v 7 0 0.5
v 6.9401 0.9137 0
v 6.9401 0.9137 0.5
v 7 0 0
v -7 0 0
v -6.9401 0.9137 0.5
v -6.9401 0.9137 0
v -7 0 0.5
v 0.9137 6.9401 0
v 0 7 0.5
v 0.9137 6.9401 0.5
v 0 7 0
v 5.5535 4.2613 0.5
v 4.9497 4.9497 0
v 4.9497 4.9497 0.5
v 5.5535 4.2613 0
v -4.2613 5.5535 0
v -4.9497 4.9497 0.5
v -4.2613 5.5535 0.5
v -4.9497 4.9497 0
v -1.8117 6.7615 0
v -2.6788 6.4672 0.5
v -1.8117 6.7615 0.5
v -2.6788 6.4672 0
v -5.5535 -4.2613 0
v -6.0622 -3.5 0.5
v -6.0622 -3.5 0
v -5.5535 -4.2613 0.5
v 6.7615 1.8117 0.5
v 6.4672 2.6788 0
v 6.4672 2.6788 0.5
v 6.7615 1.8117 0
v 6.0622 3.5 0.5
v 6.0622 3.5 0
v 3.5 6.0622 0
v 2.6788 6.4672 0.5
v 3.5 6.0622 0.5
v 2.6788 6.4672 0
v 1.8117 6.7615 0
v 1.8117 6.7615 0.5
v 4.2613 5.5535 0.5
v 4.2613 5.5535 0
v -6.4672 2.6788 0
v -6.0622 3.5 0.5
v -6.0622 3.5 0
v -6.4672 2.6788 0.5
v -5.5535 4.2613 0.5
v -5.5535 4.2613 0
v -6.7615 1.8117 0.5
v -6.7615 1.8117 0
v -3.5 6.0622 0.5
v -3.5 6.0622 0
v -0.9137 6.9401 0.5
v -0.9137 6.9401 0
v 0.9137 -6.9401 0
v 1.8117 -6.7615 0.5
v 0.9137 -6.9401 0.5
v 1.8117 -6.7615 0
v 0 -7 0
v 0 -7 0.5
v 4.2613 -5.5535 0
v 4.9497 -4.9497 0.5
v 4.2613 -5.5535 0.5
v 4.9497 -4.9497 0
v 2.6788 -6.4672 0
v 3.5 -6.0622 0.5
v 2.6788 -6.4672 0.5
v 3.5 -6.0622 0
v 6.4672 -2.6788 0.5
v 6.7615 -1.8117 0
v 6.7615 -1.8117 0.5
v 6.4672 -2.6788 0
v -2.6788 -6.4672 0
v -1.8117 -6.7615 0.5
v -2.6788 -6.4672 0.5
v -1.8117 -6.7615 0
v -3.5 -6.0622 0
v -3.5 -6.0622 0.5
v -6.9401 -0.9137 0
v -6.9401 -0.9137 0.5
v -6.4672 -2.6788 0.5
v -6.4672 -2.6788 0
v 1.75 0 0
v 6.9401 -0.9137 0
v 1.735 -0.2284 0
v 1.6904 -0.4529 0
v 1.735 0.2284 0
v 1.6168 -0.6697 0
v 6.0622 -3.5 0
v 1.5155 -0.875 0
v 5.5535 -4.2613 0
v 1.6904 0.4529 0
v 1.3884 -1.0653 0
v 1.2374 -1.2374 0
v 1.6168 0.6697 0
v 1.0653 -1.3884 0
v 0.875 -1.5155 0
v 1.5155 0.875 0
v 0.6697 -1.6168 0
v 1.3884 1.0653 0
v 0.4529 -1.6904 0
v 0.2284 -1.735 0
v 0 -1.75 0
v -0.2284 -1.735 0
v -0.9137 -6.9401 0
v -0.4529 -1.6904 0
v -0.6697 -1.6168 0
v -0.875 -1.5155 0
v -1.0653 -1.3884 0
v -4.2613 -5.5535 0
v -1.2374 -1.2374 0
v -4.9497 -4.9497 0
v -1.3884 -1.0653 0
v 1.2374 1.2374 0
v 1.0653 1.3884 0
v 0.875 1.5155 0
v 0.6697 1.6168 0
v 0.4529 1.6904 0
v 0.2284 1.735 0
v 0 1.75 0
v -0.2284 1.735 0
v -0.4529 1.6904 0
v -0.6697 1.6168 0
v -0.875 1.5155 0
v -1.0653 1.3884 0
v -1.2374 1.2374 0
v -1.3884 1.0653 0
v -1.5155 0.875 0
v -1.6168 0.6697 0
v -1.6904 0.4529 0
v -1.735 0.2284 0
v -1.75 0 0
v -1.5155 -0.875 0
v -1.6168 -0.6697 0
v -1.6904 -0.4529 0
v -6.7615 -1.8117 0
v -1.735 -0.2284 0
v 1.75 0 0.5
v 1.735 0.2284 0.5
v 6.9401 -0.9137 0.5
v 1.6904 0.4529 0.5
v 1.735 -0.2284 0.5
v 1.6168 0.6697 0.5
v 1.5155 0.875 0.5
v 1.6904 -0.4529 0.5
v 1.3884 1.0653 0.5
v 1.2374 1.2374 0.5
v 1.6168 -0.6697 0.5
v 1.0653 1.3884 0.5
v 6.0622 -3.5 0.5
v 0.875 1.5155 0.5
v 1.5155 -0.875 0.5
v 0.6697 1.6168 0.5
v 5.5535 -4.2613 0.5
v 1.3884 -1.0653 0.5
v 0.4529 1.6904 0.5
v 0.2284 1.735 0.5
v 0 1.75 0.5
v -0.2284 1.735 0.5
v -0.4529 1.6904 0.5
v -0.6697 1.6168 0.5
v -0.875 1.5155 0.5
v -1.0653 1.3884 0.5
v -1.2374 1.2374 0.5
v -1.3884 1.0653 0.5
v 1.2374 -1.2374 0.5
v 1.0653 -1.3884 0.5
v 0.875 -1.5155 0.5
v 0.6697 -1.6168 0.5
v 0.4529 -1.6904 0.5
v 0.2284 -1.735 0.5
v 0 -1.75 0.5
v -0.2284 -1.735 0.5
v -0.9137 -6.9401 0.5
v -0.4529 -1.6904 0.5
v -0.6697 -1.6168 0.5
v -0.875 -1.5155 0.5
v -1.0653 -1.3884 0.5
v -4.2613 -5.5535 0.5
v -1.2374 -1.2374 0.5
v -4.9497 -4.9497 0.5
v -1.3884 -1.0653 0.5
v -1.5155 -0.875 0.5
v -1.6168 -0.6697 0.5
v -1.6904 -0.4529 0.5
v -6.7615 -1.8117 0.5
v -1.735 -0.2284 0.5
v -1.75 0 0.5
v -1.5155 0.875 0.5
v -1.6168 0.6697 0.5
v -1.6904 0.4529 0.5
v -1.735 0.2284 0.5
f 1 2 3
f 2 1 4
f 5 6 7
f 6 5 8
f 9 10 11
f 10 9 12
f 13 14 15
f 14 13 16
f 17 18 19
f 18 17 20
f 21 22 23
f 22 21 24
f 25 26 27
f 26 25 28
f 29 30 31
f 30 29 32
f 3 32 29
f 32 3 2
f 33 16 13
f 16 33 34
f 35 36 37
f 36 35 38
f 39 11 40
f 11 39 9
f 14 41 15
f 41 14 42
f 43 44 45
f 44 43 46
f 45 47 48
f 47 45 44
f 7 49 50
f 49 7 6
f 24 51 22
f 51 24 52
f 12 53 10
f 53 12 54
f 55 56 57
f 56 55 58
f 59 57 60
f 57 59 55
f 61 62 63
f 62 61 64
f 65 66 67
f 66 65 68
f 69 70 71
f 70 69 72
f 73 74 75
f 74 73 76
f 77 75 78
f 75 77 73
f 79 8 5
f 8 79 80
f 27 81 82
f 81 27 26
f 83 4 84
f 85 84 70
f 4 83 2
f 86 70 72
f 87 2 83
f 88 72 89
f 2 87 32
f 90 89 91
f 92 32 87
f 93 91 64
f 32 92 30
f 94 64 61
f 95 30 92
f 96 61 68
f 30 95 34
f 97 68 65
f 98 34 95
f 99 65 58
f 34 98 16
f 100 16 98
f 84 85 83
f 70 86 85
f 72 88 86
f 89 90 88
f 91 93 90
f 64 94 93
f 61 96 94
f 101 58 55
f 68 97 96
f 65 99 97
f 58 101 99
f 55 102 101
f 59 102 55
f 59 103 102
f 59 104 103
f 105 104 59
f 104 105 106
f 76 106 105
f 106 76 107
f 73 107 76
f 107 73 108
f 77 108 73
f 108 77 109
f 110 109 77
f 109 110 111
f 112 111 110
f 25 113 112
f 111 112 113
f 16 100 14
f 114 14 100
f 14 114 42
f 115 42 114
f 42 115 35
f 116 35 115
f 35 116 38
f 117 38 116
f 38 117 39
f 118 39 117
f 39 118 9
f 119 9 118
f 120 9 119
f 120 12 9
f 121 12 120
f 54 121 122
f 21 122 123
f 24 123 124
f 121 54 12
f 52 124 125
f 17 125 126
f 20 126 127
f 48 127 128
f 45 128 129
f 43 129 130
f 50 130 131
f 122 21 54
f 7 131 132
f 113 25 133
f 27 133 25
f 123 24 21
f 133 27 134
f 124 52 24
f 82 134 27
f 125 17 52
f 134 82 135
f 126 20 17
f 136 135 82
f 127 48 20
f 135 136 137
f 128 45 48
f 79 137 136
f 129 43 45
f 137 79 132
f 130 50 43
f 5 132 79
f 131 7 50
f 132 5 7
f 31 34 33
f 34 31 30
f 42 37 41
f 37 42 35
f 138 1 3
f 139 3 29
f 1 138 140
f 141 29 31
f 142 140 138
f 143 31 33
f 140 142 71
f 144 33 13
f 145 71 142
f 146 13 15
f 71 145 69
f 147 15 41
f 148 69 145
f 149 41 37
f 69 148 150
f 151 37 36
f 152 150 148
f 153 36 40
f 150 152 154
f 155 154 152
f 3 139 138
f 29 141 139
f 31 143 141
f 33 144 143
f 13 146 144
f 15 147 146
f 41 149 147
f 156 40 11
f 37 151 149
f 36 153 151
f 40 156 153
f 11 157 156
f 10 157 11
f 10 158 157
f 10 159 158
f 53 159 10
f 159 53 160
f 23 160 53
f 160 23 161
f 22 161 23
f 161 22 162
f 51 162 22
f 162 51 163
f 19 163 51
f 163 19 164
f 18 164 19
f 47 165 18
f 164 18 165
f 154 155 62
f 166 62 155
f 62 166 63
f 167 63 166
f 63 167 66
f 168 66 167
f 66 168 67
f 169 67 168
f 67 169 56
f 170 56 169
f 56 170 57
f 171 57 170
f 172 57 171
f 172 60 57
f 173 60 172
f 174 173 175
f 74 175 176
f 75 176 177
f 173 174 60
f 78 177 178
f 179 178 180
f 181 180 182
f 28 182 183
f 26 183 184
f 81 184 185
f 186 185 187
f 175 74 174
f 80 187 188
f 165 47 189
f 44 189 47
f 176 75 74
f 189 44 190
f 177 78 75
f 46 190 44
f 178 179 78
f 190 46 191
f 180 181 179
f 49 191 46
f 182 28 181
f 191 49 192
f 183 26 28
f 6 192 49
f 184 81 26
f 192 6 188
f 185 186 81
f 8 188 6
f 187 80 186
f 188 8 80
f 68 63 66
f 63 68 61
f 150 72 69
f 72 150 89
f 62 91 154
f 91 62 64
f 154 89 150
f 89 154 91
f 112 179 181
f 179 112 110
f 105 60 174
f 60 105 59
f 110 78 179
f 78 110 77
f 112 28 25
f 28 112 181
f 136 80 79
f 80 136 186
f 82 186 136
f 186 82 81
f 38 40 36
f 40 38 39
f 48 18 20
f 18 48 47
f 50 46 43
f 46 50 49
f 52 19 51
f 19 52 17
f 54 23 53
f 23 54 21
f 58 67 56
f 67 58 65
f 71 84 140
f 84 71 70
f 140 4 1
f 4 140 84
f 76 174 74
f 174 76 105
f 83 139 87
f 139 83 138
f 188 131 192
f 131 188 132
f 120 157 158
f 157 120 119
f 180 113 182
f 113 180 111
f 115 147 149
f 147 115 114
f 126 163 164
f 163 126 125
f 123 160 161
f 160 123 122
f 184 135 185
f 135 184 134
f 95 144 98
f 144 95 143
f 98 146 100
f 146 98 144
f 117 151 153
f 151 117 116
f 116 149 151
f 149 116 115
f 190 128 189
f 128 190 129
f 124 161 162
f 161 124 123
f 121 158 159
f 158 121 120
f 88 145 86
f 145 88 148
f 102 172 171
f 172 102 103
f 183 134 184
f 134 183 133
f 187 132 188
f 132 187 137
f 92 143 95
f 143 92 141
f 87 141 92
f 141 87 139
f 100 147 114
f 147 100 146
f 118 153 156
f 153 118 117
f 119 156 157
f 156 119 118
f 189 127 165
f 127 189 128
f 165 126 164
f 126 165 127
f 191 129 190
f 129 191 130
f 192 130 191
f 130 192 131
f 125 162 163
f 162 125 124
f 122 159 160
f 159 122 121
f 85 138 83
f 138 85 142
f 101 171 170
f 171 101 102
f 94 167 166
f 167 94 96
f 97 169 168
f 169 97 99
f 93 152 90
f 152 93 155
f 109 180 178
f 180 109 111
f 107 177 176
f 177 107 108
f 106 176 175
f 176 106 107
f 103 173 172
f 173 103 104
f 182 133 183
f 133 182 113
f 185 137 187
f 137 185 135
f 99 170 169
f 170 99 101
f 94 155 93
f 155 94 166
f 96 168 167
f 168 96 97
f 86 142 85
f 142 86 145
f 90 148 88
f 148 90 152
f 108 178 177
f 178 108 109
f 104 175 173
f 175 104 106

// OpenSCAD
// Gen-DZ — assembly gap shim, h = run_clear (rotor face -> flange); copper is inside the flanges
include <parameters.scad>;
$fn = 48;
difference() {
    cylinder(d=spacer_pad_od, h=gap_spacer_h);
    translate([0, 0, -0.1]) cylinder(d=spacer_pad_id, h=gap_spacer_h + 0.2);
}
